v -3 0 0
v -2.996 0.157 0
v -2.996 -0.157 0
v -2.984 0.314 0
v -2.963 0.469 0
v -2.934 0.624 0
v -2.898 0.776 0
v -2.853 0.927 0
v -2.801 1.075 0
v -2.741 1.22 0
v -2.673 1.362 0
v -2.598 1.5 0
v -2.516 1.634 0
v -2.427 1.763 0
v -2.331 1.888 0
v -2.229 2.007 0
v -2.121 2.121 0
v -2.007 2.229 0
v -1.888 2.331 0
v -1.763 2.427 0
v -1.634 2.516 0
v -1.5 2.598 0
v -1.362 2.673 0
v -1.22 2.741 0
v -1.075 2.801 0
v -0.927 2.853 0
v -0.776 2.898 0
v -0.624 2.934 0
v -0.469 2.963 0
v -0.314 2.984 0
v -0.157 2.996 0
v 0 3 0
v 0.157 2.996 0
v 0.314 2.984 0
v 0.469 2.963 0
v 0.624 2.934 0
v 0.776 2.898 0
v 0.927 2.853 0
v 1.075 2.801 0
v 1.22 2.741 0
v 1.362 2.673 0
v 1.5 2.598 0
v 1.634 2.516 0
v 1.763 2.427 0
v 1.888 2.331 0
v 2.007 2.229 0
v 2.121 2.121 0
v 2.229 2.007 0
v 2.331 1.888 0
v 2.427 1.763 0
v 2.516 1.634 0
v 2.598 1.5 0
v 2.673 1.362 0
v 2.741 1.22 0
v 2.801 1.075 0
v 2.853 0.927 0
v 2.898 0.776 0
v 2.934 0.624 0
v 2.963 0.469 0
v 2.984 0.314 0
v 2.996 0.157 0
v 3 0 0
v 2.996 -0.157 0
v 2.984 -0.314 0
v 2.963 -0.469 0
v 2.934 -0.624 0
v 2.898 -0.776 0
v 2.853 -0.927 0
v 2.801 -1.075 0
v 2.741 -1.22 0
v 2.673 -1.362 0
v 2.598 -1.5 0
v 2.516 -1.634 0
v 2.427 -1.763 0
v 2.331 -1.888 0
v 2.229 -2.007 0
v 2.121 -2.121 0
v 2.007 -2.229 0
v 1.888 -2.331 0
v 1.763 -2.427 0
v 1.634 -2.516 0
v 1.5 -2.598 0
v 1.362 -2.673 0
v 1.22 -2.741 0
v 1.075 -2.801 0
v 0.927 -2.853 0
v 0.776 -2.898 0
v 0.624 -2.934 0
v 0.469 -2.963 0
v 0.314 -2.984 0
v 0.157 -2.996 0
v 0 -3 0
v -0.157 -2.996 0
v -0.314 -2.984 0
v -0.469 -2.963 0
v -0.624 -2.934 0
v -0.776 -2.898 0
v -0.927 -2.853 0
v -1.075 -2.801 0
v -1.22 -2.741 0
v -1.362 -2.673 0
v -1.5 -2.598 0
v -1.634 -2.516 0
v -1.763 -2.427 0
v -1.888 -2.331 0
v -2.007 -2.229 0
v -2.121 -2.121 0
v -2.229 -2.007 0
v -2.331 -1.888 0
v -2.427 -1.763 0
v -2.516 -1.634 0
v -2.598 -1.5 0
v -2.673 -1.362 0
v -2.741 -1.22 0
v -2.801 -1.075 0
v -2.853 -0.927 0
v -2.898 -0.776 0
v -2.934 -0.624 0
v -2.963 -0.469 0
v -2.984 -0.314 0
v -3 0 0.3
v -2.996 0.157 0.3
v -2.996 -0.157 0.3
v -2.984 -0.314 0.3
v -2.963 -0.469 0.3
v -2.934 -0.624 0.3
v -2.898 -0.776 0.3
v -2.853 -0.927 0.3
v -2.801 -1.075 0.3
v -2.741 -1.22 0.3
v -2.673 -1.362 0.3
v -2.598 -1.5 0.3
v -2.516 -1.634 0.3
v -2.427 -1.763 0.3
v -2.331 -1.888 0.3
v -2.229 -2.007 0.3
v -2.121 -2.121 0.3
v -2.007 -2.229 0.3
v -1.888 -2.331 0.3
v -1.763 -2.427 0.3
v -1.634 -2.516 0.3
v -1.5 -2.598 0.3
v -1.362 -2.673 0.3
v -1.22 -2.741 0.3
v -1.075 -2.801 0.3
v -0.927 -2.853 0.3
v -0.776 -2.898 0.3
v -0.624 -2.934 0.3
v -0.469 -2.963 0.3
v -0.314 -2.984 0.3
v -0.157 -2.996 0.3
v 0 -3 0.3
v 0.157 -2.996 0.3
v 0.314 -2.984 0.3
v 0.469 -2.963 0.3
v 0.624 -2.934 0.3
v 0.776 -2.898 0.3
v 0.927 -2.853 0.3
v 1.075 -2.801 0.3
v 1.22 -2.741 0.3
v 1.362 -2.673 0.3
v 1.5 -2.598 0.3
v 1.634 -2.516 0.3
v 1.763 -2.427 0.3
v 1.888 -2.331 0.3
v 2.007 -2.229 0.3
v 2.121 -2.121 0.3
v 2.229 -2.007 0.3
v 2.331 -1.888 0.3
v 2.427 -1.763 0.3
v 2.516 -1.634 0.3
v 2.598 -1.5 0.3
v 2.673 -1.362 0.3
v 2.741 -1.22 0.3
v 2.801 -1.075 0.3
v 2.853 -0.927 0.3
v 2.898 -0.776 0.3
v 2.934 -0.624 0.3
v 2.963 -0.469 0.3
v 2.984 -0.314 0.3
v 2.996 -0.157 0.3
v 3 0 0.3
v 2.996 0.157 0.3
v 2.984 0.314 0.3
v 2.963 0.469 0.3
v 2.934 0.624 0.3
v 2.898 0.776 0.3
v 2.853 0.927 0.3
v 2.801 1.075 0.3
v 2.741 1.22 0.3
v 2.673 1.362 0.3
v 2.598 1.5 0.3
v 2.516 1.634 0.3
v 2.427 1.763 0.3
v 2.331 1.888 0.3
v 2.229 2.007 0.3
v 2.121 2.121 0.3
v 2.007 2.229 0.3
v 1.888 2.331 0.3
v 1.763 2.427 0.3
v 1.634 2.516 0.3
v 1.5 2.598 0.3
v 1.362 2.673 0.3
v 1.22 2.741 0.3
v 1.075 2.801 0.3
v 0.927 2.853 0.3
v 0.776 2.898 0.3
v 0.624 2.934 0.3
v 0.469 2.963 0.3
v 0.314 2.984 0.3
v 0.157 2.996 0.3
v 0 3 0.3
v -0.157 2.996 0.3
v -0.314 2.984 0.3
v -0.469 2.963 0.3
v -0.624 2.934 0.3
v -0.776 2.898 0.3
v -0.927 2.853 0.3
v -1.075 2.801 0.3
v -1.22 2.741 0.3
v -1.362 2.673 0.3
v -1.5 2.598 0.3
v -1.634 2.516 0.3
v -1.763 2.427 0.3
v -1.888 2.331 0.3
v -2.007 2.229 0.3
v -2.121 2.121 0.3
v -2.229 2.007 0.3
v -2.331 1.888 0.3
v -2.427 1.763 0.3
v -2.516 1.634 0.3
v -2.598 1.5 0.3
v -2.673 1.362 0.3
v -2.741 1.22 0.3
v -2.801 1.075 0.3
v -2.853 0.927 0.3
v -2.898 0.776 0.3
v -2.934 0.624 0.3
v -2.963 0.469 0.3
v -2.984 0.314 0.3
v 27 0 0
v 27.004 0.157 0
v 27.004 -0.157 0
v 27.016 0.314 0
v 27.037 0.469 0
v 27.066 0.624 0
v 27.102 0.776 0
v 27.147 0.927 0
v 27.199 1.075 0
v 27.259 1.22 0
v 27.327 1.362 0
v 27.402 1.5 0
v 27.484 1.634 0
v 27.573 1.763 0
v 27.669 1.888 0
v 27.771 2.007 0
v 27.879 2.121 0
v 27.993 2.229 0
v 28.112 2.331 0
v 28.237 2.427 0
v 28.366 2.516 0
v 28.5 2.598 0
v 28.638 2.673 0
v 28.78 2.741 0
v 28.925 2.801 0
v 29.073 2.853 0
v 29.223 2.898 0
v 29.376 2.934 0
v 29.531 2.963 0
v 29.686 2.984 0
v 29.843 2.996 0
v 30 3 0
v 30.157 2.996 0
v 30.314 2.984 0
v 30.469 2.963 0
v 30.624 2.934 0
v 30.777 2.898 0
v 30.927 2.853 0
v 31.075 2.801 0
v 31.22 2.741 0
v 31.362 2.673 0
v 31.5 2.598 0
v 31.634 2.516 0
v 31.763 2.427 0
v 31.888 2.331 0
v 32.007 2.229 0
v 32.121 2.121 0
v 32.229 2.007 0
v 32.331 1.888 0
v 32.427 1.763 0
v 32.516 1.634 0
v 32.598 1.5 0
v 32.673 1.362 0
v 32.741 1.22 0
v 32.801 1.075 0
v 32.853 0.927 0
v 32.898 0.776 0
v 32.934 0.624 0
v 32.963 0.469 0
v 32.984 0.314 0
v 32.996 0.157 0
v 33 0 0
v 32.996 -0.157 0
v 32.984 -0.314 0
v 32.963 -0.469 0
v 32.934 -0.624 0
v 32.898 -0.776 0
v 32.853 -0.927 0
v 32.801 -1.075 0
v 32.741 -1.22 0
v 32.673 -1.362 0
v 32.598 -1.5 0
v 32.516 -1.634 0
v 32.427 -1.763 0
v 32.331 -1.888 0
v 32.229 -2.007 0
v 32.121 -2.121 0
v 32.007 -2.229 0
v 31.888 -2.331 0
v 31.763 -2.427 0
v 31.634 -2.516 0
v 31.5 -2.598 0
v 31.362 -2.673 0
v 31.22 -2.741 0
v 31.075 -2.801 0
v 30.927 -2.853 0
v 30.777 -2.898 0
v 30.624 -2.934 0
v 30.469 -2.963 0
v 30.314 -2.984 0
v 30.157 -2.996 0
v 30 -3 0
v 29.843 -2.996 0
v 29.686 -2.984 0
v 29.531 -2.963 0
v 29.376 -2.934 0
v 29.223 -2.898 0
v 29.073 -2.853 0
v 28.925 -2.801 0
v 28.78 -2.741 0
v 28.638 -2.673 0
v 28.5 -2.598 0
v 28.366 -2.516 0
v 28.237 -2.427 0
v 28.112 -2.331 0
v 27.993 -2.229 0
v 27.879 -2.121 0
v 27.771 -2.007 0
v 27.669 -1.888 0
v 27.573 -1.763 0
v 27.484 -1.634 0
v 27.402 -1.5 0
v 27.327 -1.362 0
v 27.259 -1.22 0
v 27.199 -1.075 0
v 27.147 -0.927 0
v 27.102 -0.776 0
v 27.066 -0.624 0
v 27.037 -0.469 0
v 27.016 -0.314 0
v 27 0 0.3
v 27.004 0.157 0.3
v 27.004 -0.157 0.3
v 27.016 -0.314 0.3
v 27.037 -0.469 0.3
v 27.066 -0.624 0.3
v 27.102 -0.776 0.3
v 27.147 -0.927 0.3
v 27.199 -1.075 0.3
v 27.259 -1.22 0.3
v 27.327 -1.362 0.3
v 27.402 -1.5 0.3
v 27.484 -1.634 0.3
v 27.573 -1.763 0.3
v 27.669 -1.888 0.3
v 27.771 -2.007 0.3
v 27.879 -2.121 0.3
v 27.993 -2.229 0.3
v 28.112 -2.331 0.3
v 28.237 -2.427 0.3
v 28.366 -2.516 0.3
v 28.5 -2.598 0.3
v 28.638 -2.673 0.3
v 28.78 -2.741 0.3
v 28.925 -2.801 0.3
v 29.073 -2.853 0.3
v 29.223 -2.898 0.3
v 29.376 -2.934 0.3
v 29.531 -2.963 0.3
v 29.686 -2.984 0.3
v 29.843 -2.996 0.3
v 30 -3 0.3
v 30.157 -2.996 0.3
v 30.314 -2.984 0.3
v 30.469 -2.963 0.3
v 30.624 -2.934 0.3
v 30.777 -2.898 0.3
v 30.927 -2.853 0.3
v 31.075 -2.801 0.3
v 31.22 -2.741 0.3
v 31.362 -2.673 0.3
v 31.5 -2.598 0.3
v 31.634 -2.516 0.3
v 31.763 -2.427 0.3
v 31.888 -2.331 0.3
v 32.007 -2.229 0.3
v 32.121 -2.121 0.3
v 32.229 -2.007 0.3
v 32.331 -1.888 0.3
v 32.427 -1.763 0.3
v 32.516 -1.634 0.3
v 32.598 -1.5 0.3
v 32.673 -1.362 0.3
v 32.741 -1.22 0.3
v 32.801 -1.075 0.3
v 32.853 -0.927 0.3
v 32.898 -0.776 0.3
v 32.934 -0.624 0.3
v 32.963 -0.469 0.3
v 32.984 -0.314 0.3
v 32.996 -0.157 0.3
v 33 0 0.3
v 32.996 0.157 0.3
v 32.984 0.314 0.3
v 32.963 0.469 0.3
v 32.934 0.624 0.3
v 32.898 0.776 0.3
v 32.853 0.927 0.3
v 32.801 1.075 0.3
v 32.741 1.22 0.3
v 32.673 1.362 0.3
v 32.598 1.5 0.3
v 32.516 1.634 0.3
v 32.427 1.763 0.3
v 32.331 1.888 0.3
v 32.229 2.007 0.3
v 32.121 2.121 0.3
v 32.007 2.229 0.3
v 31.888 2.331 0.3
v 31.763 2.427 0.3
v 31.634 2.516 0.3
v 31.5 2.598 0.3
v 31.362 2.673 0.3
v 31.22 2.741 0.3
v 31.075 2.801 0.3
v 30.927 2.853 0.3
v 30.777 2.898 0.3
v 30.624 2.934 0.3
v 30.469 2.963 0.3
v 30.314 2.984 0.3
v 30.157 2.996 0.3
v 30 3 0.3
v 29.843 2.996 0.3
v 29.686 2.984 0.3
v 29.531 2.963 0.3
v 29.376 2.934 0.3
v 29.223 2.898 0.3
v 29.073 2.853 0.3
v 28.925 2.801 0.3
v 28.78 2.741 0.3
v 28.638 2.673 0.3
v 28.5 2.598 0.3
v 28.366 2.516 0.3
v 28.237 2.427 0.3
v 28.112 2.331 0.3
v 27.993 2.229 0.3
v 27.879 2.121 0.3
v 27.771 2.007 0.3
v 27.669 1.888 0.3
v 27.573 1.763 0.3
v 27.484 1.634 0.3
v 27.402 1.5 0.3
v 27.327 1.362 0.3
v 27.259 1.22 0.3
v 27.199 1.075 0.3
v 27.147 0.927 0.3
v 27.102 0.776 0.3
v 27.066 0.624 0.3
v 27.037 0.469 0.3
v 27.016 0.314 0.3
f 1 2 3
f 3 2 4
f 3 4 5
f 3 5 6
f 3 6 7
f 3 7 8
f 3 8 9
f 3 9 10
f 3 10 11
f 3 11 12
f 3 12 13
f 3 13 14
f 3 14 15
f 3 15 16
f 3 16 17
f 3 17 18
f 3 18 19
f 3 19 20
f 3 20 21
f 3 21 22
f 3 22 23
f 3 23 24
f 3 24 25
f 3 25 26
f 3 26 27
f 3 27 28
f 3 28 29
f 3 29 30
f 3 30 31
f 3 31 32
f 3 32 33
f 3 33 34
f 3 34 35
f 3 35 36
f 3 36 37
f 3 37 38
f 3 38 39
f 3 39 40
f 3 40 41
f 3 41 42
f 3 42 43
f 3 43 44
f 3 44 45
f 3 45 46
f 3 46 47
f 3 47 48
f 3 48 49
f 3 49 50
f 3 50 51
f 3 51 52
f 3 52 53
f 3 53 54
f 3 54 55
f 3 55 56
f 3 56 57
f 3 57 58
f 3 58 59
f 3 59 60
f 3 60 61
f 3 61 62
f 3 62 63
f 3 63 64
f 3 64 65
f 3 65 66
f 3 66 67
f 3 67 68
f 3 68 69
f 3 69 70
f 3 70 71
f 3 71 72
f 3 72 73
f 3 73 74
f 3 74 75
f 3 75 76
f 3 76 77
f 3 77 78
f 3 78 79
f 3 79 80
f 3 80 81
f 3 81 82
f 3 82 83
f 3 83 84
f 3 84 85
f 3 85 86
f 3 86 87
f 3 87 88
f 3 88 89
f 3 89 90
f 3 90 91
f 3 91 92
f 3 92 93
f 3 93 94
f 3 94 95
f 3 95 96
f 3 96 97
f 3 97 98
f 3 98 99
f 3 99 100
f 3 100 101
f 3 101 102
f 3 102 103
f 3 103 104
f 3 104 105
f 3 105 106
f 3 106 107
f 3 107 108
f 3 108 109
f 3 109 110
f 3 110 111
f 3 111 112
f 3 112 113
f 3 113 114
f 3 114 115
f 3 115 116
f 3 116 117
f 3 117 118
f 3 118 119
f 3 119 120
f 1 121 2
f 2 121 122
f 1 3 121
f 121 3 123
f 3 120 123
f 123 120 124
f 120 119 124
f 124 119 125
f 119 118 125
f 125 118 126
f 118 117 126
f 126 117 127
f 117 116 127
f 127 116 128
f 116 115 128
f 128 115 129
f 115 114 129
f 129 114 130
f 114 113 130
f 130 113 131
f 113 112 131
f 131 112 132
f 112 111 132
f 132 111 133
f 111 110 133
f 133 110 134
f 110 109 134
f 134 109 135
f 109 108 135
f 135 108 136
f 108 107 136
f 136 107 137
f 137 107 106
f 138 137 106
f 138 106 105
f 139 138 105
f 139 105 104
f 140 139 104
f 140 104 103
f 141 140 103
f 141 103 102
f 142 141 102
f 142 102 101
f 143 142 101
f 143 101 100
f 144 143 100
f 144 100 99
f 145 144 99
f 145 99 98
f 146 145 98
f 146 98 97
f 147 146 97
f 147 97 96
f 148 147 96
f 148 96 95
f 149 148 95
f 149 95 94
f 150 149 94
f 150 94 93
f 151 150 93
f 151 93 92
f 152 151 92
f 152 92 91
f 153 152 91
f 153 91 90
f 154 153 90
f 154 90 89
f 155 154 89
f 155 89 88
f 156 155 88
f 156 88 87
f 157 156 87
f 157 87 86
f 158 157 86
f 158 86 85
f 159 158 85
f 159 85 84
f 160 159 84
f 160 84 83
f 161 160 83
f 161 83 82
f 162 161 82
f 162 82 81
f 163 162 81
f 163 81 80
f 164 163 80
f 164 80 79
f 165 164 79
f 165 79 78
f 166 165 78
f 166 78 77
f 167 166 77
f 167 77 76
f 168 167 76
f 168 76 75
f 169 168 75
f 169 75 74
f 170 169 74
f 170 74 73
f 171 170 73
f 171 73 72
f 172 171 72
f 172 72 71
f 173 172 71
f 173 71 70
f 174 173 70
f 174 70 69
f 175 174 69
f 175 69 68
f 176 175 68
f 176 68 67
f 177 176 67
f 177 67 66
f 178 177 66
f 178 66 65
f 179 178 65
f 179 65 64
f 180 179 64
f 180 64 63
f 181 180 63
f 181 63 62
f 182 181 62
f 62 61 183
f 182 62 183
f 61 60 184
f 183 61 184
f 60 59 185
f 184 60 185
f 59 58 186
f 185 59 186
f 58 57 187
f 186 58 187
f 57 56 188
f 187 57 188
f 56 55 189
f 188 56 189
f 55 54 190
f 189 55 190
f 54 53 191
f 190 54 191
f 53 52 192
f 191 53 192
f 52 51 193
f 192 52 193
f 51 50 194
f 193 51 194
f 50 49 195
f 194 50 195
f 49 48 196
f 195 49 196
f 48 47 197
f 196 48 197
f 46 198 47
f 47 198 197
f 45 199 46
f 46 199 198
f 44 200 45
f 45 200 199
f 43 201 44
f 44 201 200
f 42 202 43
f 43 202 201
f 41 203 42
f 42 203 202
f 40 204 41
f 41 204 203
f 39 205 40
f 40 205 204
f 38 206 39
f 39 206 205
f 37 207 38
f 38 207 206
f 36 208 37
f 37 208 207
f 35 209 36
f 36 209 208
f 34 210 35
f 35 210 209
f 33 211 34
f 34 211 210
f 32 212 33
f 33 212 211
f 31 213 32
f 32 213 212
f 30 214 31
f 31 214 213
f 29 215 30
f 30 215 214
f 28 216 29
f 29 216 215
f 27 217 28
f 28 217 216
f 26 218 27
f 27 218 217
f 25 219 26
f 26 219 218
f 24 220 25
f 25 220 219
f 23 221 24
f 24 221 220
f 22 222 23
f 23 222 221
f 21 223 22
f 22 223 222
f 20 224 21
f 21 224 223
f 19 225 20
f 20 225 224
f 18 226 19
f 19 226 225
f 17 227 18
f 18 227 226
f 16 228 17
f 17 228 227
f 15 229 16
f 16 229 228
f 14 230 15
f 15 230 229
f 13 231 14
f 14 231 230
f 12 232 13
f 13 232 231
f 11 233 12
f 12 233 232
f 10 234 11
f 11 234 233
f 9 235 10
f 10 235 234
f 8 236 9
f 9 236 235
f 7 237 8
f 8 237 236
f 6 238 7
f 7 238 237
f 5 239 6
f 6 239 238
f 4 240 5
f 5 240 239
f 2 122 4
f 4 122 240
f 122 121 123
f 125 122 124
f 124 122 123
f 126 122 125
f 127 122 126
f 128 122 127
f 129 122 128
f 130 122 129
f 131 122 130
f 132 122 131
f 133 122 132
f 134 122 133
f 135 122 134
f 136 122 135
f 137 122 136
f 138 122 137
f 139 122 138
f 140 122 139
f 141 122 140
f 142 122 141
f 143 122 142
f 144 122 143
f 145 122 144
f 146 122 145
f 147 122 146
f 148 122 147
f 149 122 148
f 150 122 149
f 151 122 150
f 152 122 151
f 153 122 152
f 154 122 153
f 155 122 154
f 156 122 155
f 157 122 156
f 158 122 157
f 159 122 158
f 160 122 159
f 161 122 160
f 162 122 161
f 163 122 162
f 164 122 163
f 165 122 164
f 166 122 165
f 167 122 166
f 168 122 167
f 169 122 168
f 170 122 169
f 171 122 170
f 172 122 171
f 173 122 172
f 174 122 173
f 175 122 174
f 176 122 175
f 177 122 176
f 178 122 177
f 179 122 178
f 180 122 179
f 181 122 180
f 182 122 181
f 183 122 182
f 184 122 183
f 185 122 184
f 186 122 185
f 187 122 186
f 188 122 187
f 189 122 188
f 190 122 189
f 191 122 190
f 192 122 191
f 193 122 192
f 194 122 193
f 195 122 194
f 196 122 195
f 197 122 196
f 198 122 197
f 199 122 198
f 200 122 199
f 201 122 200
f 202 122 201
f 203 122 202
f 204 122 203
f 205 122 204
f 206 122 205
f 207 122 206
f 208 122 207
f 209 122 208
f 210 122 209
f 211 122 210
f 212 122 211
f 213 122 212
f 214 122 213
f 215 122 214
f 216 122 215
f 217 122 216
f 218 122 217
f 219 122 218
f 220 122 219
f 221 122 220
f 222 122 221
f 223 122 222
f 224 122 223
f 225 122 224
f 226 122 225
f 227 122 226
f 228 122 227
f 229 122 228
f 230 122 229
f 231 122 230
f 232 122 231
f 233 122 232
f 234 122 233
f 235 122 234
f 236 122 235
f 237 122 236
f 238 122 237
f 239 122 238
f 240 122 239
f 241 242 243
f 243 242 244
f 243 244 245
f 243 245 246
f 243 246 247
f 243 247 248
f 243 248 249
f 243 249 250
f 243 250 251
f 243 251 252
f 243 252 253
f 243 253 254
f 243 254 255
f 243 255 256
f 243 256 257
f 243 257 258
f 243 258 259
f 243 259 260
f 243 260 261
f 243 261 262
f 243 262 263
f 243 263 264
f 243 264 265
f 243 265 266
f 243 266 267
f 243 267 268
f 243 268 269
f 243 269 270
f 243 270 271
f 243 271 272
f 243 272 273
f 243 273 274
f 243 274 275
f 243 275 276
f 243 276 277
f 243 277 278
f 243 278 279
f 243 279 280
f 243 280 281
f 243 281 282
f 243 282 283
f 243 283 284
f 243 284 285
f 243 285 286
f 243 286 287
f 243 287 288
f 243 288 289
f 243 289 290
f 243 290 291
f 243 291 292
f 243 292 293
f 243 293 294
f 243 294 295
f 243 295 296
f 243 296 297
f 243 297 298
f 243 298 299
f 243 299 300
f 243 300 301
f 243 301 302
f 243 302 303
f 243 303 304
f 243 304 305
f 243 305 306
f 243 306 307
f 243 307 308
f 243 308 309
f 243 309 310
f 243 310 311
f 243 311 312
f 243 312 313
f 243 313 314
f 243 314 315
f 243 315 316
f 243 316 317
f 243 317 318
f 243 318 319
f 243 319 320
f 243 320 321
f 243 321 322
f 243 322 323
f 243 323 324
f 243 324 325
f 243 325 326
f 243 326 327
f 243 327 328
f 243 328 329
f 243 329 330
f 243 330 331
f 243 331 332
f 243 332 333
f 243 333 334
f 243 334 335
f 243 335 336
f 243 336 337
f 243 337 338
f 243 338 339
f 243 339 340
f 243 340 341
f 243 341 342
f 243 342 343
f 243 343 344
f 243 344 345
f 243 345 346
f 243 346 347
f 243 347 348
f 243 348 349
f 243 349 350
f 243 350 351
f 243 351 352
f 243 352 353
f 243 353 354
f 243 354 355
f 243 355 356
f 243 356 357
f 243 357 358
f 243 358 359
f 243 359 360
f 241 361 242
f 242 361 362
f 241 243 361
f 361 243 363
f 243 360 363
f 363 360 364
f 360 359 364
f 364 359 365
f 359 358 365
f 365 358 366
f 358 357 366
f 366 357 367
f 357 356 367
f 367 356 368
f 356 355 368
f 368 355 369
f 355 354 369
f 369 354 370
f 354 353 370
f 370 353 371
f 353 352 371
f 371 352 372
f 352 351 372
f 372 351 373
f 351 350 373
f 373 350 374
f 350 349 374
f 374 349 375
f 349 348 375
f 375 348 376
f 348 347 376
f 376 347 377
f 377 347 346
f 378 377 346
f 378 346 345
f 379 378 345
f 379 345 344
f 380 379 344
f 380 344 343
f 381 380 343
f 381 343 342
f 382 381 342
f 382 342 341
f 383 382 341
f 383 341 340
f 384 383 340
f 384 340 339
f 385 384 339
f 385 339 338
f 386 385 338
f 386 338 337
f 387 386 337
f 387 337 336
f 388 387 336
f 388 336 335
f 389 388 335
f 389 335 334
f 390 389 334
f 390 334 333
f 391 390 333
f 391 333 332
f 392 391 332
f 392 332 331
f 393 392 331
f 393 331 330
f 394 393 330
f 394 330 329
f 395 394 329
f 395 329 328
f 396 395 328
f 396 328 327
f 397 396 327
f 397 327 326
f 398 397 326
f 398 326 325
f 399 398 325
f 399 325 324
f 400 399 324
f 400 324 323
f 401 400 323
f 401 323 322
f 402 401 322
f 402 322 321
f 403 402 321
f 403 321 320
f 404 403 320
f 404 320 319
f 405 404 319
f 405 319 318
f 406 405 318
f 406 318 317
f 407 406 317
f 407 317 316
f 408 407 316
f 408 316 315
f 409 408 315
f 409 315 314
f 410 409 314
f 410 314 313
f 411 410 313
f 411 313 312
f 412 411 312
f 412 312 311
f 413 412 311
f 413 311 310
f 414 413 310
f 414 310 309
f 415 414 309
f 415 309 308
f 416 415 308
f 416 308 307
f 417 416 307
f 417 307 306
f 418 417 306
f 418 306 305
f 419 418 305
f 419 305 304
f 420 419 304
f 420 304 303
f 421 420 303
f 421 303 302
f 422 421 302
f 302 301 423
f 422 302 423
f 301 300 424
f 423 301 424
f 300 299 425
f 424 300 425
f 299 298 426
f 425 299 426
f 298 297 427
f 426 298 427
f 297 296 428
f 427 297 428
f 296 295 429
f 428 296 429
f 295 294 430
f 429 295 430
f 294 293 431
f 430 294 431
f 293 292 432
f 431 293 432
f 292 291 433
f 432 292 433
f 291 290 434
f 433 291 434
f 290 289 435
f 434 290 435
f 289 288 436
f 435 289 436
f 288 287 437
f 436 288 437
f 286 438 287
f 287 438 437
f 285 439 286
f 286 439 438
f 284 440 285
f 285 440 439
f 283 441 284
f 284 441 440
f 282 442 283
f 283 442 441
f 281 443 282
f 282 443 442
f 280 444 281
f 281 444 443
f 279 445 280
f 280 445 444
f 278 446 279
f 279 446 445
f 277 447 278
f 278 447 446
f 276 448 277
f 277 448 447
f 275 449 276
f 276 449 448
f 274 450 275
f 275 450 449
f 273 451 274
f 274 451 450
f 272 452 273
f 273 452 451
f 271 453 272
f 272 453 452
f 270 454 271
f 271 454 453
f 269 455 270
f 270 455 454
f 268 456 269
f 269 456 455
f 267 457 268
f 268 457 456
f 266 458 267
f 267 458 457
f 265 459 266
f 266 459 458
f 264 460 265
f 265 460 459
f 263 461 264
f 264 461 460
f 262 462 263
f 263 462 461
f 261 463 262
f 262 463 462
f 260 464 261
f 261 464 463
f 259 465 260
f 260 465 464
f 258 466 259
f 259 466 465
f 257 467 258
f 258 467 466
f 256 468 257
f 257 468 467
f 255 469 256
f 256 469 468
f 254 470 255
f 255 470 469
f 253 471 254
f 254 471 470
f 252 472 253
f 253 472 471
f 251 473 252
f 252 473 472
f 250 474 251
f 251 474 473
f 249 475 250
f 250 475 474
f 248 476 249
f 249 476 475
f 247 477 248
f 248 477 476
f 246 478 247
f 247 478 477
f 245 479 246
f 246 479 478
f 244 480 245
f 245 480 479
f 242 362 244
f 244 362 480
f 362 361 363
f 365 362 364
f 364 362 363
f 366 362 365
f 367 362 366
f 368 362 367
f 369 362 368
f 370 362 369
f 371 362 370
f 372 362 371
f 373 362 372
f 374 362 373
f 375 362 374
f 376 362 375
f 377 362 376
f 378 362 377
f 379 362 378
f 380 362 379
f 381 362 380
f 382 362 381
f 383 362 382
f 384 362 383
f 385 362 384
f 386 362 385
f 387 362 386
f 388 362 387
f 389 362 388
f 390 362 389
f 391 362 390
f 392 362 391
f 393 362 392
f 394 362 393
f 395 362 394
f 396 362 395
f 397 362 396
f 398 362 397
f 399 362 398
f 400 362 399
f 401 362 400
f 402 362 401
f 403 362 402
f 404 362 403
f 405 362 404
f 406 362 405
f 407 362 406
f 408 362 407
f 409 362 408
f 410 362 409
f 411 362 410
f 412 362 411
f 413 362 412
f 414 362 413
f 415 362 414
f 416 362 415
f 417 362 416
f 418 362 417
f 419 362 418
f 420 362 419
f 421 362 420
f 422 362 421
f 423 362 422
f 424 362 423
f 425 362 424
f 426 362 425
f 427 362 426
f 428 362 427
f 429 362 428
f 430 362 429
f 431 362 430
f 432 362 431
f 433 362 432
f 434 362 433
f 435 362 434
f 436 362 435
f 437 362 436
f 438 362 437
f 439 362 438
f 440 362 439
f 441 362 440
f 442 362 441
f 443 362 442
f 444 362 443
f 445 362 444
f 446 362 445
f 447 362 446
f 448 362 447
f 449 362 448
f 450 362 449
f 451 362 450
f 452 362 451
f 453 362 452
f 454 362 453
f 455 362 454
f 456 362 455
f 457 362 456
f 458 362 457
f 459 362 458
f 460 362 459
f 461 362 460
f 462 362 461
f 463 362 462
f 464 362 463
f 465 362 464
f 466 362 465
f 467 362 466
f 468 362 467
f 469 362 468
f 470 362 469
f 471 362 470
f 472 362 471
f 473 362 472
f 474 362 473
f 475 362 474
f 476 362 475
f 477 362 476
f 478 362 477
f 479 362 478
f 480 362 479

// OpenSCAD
$fn=120;
cylinder(r=3, h=0.3);
translate([30,0,0])
cylinder(r=3, h=0.3);
